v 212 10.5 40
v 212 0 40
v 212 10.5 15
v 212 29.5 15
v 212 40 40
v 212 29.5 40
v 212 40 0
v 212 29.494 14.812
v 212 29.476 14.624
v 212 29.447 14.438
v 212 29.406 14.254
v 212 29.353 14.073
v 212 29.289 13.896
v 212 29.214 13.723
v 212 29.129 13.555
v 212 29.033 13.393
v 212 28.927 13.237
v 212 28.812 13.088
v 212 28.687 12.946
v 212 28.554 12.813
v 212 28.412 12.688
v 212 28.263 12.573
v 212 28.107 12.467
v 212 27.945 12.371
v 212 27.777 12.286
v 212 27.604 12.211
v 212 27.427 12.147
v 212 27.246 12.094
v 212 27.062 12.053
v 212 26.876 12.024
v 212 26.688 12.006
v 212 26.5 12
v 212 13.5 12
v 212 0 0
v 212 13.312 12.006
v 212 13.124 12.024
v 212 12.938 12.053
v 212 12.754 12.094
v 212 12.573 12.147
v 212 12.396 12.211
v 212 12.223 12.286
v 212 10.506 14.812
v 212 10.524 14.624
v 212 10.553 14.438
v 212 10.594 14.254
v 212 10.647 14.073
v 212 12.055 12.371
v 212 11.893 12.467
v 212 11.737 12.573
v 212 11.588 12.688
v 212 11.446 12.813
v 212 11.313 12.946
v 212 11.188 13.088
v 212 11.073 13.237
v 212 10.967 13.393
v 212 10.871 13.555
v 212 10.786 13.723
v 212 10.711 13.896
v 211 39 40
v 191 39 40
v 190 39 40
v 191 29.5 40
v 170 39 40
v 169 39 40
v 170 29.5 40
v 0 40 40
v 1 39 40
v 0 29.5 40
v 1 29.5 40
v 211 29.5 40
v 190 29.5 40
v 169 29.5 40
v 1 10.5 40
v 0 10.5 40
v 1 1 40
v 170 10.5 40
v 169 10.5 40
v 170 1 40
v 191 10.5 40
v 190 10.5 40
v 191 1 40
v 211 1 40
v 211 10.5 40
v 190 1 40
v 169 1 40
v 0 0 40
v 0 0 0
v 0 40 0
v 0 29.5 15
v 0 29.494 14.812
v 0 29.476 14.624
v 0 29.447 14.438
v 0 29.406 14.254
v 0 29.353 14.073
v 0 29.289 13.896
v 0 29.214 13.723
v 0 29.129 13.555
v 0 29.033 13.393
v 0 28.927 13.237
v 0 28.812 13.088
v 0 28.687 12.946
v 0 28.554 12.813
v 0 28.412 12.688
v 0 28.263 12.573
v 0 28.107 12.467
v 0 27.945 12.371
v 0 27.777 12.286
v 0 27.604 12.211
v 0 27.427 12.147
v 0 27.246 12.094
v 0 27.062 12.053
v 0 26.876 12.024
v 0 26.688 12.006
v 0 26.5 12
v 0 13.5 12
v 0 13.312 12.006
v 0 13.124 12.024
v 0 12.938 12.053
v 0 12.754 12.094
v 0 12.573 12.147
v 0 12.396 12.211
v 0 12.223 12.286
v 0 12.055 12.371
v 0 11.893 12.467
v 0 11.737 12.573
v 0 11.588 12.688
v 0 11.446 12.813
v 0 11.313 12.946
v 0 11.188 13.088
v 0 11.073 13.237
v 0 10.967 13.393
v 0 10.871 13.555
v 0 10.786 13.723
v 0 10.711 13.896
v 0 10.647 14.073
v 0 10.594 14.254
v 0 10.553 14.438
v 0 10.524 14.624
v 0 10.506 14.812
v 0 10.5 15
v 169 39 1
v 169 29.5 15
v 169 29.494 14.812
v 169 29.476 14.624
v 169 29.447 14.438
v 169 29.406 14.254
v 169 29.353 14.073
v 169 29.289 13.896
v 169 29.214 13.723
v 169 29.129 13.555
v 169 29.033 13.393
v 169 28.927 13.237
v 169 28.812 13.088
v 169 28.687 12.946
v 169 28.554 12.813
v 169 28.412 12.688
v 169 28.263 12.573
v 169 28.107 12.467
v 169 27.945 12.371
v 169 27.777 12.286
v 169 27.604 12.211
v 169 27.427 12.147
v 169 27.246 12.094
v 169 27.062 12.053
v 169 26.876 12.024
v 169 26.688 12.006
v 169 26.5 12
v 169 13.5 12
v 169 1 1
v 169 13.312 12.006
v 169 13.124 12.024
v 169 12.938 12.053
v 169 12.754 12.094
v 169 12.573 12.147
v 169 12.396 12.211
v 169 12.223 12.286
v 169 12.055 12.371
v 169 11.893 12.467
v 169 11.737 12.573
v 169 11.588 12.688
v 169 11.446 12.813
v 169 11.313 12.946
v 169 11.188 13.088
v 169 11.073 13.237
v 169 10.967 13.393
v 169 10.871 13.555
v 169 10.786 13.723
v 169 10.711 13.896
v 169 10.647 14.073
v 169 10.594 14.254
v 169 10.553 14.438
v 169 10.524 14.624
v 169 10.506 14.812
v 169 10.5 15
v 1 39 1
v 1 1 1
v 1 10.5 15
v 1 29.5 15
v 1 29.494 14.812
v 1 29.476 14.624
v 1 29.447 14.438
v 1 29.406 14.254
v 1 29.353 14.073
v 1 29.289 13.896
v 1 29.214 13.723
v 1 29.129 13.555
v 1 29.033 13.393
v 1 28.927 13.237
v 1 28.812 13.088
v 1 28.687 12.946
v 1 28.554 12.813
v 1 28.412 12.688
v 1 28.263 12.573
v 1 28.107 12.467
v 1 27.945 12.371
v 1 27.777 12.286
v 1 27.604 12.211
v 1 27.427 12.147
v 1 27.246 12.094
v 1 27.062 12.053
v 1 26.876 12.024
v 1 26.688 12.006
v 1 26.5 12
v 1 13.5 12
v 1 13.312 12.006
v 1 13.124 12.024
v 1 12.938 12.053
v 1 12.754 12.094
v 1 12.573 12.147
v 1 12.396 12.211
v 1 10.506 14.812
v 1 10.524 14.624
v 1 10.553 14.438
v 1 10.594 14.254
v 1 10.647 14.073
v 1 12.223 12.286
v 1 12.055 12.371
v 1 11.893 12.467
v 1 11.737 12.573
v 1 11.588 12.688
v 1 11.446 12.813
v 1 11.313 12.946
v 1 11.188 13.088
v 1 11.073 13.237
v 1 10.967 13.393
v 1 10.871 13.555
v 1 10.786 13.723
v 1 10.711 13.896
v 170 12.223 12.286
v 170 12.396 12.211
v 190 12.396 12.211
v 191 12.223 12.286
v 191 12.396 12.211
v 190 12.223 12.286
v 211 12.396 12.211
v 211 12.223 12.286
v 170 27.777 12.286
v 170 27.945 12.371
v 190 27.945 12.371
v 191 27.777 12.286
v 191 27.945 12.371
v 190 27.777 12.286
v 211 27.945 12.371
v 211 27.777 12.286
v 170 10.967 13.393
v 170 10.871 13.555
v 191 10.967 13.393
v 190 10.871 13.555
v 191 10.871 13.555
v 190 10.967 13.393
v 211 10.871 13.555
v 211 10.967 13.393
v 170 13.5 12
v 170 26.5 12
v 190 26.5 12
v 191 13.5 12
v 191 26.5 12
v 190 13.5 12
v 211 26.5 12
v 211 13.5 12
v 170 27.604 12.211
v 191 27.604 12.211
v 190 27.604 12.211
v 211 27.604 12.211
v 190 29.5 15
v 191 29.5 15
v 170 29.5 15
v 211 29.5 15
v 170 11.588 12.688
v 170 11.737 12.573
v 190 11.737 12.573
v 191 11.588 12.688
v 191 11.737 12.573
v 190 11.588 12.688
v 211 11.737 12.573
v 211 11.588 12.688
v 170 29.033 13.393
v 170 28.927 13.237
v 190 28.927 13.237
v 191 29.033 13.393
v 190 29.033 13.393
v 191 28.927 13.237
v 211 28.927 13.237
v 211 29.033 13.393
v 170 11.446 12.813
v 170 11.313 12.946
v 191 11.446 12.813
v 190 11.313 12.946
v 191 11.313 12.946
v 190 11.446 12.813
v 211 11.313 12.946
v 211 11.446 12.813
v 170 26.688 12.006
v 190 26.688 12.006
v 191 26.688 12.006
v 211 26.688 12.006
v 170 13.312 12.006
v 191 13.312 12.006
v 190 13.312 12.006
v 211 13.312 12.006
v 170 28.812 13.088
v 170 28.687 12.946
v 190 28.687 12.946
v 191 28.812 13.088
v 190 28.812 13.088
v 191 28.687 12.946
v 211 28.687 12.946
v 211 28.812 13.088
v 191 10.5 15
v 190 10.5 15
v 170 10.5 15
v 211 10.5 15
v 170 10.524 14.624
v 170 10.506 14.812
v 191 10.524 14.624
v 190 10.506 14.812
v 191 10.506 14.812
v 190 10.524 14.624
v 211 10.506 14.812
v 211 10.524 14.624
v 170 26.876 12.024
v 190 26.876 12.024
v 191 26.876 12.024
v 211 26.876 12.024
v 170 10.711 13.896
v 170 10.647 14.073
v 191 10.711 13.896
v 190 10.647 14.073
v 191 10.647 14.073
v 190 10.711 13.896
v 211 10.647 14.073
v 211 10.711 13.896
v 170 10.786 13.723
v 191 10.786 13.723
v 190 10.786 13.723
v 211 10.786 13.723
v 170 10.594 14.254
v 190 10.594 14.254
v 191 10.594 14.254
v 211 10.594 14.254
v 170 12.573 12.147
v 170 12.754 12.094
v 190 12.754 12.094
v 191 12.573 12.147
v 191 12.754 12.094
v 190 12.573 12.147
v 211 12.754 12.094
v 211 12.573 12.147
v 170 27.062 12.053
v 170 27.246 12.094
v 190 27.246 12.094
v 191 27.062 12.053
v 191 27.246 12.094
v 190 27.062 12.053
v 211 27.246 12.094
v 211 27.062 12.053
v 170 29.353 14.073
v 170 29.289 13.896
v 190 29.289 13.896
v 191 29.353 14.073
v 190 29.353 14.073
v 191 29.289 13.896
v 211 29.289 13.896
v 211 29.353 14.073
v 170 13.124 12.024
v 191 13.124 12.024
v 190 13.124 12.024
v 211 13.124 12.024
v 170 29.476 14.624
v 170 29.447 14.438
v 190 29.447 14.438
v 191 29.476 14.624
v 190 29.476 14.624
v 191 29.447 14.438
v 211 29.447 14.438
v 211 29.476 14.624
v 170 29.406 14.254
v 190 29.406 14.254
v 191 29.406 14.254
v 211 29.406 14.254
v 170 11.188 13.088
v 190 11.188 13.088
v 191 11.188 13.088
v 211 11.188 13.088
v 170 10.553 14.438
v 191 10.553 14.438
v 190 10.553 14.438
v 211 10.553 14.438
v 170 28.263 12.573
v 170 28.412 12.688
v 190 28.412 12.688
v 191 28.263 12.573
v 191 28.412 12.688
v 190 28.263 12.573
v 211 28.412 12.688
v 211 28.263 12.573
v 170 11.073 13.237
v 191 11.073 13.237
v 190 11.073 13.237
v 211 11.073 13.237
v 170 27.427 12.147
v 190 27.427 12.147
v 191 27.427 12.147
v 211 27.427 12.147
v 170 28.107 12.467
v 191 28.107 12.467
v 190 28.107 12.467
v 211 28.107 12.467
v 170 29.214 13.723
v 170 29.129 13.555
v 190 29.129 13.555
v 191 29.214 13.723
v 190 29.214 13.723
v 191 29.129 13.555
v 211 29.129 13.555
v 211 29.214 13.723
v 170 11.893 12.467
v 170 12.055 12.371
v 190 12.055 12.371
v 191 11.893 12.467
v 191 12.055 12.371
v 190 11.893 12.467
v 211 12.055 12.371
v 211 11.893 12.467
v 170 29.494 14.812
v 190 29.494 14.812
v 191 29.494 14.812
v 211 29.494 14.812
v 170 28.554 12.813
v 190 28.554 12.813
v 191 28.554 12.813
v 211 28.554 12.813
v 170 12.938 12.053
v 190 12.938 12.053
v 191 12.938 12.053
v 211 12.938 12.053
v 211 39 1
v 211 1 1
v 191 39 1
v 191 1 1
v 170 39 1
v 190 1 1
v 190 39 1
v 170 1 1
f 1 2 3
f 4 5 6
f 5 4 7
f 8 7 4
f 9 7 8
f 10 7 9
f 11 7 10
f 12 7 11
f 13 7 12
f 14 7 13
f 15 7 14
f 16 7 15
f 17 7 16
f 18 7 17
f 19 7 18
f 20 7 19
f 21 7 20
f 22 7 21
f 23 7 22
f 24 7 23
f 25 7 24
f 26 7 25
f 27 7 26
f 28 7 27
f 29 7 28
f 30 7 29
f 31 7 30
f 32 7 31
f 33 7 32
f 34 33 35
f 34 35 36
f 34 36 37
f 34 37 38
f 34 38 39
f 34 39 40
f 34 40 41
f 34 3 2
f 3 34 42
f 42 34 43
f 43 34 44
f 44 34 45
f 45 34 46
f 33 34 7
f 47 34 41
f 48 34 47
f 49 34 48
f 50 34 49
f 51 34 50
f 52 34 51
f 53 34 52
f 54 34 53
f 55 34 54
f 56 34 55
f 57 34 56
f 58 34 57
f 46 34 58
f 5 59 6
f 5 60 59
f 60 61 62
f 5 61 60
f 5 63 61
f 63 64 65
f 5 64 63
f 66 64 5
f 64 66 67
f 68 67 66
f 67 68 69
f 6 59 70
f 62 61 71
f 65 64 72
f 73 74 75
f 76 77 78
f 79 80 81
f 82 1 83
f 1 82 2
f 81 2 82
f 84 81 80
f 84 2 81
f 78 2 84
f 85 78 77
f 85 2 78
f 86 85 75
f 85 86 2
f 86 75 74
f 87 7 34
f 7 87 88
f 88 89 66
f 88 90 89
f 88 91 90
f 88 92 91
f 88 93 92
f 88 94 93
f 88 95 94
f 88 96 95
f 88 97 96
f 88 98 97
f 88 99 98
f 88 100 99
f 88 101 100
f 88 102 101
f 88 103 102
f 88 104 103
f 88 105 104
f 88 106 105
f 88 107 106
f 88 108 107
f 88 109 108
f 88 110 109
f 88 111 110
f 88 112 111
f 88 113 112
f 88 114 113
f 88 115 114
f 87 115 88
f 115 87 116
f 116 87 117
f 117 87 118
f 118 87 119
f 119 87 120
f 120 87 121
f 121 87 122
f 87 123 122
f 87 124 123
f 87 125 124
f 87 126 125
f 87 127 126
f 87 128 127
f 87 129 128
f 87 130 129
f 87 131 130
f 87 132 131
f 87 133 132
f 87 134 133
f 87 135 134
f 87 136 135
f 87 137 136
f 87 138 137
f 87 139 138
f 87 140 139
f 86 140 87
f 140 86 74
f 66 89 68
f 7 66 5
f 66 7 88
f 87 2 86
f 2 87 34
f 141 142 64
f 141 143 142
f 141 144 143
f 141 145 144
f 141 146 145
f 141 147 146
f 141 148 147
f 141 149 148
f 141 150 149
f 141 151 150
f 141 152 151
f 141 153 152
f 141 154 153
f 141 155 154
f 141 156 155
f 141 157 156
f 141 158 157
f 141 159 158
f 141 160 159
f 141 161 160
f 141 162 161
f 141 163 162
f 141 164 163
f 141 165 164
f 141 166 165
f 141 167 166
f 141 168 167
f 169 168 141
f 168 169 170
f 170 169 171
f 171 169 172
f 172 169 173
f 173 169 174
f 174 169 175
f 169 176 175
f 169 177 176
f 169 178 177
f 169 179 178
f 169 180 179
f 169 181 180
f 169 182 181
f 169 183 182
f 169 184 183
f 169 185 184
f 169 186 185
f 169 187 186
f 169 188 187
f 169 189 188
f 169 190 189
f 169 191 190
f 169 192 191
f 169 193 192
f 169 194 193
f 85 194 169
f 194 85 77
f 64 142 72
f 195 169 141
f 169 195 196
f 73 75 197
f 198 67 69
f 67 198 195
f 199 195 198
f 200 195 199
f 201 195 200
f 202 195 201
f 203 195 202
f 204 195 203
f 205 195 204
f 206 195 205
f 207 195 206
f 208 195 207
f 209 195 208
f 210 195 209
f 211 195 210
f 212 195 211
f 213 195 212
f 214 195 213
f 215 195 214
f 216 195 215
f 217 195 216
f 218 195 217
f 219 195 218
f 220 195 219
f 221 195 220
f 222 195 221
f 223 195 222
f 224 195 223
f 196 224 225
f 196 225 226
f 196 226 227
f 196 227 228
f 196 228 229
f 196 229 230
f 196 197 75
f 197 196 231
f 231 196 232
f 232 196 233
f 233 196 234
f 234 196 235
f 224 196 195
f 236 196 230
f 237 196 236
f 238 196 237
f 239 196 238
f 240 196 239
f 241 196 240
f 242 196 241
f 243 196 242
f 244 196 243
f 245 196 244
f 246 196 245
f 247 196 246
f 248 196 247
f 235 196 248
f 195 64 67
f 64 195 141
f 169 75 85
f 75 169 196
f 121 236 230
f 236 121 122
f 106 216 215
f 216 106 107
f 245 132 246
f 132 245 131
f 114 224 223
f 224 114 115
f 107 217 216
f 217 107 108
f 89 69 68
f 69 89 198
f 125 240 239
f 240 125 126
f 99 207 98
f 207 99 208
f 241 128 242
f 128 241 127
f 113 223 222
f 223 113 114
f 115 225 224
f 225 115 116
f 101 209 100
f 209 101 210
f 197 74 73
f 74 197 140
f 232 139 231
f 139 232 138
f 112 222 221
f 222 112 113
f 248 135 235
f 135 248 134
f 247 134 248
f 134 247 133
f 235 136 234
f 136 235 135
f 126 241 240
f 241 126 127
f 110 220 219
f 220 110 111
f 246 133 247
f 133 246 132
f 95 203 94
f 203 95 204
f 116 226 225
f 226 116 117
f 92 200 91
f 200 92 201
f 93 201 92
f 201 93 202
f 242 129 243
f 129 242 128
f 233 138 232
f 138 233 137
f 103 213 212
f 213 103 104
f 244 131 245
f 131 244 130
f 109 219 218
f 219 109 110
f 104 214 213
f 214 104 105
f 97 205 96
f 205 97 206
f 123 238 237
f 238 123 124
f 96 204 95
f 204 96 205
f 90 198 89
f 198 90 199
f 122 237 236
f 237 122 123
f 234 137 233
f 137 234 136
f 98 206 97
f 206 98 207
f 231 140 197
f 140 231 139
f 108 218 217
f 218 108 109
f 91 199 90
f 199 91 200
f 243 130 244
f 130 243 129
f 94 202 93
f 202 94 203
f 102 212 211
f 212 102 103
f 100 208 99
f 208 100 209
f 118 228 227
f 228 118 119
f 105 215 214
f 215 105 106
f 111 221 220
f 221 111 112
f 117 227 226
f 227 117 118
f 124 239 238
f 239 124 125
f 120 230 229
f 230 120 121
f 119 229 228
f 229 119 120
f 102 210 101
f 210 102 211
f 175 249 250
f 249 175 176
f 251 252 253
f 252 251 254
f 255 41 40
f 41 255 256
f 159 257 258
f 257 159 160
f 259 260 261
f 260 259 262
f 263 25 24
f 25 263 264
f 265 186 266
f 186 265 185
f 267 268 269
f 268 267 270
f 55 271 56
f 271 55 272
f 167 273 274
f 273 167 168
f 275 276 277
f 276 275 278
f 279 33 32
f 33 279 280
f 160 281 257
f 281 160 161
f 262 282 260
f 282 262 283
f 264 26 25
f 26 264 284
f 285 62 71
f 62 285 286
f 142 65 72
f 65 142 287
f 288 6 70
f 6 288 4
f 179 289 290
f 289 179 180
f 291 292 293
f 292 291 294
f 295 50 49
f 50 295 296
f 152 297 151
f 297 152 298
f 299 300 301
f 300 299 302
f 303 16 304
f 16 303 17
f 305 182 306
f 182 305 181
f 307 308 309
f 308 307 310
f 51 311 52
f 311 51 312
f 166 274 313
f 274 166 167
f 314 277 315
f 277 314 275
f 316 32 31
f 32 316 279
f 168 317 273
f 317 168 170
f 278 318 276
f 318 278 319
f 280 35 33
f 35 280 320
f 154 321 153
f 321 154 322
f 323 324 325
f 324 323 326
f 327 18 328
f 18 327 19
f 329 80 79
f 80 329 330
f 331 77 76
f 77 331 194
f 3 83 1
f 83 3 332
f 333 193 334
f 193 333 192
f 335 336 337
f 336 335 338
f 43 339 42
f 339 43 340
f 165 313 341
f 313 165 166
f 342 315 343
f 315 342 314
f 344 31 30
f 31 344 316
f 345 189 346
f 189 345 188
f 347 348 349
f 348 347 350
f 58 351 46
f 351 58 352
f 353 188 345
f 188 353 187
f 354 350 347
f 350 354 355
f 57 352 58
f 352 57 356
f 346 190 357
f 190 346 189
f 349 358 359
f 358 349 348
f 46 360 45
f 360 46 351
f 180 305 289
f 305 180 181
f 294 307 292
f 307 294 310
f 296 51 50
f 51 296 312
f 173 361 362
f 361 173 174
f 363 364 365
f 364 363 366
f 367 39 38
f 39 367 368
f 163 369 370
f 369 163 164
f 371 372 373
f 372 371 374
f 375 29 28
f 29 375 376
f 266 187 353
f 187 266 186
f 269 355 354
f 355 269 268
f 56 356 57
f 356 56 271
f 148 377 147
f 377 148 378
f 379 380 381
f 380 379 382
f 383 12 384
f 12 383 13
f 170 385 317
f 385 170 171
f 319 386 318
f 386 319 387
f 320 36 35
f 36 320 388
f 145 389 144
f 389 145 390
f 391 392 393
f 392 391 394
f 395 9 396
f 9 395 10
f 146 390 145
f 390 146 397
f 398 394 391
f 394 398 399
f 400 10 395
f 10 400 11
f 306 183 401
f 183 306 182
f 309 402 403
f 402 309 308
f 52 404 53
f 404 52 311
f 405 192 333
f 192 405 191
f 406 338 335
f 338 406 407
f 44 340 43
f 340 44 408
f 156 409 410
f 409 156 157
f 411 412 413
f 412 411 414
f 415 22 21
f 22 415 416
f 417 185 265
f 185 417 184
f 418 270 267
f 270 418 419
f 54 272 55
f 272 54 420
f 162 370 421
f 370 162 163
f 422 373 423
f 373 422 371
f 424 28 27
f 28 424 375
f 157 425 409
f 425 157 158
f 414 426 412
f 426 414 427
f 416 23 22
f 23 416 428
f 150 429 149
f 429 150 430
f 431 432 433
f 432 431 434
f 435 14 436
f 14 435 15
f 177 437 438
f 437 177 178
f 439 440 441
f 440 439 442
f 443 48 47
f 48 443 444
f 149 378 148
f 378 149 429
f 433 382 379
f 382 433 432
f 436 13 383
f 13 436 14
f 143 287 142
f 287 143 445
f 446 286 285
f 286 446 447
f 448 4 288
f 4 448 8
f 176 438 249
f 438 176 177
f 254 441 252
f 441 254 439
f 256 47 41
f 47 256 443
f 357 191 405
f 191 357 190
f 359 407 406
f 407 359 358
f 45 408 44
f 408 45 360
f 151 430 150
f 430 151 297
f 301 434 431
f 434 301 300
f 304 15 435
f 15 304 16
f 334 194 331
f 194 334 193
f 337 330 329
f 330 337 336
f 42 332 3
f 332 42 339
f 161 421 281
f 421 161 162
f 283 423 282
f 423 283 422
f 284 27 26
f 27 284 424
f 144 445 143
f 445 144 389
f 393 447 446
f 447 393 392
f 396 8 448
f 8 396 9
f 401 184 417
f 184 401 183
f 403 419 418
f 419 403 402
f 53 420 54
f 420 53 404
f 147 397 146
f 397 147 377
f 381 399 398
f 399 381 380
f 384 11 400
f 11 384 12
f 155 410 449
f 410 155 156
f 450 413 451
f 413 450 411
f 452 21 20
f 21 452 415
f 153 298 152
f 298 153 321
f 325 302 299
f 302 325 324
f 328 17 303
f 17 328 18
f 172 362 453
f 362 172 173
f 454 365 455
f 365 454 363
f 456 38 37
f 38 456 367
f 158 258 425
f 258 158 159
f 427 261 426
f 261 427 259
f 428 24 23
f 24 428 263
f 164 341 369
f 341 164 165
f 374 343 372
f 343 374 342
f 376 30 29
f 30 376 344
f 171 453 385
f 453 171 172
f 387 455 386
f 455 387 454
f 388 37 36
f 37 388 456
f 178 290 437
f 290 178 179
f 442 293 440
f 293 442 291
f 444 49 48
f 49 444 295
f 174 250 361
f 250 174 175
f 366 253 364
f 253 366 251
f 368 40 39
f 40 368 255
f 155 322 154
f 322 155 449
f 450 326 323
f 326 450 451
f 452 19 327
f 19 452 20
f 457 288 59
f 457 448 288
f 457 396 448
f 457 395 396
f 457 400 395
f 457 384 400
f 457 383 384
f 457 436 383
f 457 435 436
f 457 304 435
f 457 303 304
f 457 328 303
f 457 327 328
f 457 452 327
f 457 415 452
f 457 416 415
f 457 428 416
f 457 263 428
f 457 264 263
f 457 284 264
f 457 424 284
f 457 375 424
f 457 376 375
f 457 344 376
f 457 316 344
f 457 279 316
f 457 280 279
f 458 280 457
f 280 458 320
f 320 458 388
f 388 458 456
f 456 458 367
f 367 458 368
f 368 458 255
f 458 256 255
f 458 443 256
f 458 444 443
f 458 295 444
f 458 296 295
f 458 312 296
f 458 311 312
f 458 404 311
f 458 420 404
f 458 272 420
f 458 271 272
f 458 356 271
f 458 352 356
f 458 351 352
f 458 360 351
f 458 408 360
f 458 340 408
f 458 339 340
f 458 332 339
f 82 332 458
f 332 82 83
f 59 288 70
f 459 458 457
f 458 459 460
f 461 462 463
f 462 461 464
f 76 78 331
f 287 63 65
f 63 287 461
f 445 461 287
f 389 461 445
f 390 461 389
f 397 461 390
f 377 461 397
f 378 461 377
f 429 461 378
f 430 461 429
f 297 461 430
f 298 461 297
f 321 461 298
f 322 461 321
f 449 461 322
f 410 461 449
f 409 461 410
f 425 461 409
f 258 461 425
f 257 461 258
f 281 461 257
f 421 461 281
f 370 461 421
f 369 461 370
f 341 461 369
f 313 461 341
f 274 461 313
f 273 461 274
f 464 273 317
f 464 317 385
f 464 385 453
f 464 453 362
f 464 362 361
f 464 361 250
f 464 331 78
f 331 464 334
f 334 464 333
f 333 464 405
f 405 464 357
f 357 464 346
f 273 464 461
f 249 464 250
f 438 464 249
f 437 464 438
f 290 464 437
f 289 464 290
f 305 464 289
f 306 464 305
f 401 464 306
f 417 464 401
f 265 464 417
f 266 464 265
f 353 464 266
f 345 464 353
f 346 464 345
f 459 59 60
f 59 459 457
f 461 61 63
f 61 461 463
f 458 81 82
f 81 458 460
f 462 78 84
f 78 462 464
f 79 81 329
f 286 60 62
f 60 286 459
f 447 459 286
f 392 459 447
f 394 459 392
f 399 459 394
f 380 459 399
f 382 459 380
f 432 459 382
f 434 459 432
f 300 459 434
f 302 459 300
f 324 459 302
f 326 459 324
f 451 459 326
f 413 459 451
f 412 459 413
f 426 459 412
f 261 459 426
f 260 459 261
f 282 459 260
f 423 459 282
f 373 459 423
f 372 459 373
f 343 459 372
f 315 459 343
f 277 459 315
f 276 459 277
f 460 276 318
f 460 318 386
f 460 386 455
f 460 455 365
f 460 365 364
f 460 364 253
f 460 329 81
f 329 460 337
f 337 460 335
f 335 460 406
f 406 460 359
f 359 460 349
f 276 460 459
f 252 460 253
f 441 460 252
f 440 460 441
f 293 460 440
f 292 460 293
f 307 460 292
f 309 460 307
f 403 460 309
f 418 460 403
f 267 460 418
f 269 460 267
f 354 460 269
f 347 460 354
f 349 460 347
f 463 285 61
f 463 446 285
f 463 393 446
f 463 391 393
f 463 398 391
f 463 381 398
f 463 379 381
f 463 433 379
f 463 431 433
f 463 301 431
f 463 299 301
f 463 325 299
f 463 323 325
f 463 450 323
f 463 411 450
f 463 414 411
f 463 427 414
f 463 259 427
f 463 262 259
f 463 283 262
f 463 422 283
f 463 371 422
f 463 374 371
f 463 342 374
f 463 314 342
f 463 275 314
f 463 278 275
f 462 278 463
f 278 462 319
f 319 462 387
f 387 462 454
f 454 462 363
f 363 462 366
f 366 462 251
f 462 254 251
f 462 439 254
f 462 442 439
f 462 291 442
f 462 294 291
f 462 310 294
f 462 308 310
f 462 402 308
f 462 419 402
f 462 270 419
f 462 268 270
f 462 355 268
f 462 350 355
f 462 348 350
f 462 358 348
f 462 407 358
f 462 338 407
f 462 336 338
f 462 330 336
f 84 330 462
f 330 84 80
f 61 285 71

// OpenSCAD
include <boardgame_insert_toolkit_lib.2.scad>;

// determines whether lids are output.
g_b_print_lid = true;

// determines whether boxes are output.
g_b_print_box = true; 

// Focus on one box
g_isolated_print_box = ""; 

// Used to visualize how all of the boxes fit together. 
g_b_visualization = false;          
        
// this is the outer wall thickness. 
//Default = 1.5mm
g_wall_thickness = 1.0;

// The tolerance value is extra space put between planes of the lid and box that fit together.
// Increase the tolerance to loosen the fit and decrease it to tighten it.
//
// Note that the tolerance is applied exclusively to the lid.
// So if the lid is too tight or too loose, change this value ( up for looser fit, down for tighter fit ) and 
// you only need to reprint the lid.
// 
// The exception is the stackable box, where the bottom of the box is the lid of the box below,
// in which case the tolerance also affects that box bottom.
//
g_tolerance = 0.15;

// This adjusts the position of the lid detents downward. 
// The larger the value, the bigger the gap between the lid and the box.
g_tolerance_detents_pos = 0.1;

aw_size_x = 212.0;
aw_size_y = 40.0;
aw_size_z = 40.0;


data =
  [
    [
      "simple box",
      [
        [ BOX_SIZE_XYZ, [aw_size_x, aw_size_y, aw_size_z] ],
        [ BOX_NO_LID_B, t],
        [
          BOX_COMPONENT,
          [
            [
              CMP_COMPARTMENT_SIZE_XYZ,
              [
                168,
                (aw_size_y - 1.0 - 1.0),
                aw_size_z - g_wall_thickness
              ]
            ],
            [ CMP_NUM_COMPARTMENTS_XY, [1, 1] ],
            //[ CMP_FILLET_RADIUS, 5.0 ],
            [ POSITION_XY, [0, 0] ],
            [ CMP_CUTOUT_SIDES_4B,   [f,f,t,t]],
            //[ CMP_CUTOUT_DEPTH_PCT,  20],
            //[ CMP_CUTOUT_WIDTH_PCT,  50],
            [ CMP_CUTOUT_HEIGHT_PCT, 60], 
          ]
        ],
        [
          BOX_COMPONENT,
          [
            [
              CMP_COMPARTMENT_SIZE_XYZ,
              [
                20,
                (aw_size_y - 1.0 - 1.0),
                aw_size_z - g_wall_thickness
              ]
            ],
            [ CMP_NUM_COMPARTMENTS_XY, [2, 1] ],
            //[ CMP_FILLET_RADIUS, 5.0 ],
            [ POSITION_XY, [169, 0] ],
            [ CMP_CUTOUT_SIDES_4B,   [f,f,t,t]],
            //[ CMP_CUTOUT_DEPTH_PCT,  20],
            //[ CMP_CUTOUT_WIDTH_PCT,  50],
            [ CMP_CUTOUT_HEIGHT_PCT, 60], 
          ]
        ],
      ]
    ]
  ];

MakeAll();
